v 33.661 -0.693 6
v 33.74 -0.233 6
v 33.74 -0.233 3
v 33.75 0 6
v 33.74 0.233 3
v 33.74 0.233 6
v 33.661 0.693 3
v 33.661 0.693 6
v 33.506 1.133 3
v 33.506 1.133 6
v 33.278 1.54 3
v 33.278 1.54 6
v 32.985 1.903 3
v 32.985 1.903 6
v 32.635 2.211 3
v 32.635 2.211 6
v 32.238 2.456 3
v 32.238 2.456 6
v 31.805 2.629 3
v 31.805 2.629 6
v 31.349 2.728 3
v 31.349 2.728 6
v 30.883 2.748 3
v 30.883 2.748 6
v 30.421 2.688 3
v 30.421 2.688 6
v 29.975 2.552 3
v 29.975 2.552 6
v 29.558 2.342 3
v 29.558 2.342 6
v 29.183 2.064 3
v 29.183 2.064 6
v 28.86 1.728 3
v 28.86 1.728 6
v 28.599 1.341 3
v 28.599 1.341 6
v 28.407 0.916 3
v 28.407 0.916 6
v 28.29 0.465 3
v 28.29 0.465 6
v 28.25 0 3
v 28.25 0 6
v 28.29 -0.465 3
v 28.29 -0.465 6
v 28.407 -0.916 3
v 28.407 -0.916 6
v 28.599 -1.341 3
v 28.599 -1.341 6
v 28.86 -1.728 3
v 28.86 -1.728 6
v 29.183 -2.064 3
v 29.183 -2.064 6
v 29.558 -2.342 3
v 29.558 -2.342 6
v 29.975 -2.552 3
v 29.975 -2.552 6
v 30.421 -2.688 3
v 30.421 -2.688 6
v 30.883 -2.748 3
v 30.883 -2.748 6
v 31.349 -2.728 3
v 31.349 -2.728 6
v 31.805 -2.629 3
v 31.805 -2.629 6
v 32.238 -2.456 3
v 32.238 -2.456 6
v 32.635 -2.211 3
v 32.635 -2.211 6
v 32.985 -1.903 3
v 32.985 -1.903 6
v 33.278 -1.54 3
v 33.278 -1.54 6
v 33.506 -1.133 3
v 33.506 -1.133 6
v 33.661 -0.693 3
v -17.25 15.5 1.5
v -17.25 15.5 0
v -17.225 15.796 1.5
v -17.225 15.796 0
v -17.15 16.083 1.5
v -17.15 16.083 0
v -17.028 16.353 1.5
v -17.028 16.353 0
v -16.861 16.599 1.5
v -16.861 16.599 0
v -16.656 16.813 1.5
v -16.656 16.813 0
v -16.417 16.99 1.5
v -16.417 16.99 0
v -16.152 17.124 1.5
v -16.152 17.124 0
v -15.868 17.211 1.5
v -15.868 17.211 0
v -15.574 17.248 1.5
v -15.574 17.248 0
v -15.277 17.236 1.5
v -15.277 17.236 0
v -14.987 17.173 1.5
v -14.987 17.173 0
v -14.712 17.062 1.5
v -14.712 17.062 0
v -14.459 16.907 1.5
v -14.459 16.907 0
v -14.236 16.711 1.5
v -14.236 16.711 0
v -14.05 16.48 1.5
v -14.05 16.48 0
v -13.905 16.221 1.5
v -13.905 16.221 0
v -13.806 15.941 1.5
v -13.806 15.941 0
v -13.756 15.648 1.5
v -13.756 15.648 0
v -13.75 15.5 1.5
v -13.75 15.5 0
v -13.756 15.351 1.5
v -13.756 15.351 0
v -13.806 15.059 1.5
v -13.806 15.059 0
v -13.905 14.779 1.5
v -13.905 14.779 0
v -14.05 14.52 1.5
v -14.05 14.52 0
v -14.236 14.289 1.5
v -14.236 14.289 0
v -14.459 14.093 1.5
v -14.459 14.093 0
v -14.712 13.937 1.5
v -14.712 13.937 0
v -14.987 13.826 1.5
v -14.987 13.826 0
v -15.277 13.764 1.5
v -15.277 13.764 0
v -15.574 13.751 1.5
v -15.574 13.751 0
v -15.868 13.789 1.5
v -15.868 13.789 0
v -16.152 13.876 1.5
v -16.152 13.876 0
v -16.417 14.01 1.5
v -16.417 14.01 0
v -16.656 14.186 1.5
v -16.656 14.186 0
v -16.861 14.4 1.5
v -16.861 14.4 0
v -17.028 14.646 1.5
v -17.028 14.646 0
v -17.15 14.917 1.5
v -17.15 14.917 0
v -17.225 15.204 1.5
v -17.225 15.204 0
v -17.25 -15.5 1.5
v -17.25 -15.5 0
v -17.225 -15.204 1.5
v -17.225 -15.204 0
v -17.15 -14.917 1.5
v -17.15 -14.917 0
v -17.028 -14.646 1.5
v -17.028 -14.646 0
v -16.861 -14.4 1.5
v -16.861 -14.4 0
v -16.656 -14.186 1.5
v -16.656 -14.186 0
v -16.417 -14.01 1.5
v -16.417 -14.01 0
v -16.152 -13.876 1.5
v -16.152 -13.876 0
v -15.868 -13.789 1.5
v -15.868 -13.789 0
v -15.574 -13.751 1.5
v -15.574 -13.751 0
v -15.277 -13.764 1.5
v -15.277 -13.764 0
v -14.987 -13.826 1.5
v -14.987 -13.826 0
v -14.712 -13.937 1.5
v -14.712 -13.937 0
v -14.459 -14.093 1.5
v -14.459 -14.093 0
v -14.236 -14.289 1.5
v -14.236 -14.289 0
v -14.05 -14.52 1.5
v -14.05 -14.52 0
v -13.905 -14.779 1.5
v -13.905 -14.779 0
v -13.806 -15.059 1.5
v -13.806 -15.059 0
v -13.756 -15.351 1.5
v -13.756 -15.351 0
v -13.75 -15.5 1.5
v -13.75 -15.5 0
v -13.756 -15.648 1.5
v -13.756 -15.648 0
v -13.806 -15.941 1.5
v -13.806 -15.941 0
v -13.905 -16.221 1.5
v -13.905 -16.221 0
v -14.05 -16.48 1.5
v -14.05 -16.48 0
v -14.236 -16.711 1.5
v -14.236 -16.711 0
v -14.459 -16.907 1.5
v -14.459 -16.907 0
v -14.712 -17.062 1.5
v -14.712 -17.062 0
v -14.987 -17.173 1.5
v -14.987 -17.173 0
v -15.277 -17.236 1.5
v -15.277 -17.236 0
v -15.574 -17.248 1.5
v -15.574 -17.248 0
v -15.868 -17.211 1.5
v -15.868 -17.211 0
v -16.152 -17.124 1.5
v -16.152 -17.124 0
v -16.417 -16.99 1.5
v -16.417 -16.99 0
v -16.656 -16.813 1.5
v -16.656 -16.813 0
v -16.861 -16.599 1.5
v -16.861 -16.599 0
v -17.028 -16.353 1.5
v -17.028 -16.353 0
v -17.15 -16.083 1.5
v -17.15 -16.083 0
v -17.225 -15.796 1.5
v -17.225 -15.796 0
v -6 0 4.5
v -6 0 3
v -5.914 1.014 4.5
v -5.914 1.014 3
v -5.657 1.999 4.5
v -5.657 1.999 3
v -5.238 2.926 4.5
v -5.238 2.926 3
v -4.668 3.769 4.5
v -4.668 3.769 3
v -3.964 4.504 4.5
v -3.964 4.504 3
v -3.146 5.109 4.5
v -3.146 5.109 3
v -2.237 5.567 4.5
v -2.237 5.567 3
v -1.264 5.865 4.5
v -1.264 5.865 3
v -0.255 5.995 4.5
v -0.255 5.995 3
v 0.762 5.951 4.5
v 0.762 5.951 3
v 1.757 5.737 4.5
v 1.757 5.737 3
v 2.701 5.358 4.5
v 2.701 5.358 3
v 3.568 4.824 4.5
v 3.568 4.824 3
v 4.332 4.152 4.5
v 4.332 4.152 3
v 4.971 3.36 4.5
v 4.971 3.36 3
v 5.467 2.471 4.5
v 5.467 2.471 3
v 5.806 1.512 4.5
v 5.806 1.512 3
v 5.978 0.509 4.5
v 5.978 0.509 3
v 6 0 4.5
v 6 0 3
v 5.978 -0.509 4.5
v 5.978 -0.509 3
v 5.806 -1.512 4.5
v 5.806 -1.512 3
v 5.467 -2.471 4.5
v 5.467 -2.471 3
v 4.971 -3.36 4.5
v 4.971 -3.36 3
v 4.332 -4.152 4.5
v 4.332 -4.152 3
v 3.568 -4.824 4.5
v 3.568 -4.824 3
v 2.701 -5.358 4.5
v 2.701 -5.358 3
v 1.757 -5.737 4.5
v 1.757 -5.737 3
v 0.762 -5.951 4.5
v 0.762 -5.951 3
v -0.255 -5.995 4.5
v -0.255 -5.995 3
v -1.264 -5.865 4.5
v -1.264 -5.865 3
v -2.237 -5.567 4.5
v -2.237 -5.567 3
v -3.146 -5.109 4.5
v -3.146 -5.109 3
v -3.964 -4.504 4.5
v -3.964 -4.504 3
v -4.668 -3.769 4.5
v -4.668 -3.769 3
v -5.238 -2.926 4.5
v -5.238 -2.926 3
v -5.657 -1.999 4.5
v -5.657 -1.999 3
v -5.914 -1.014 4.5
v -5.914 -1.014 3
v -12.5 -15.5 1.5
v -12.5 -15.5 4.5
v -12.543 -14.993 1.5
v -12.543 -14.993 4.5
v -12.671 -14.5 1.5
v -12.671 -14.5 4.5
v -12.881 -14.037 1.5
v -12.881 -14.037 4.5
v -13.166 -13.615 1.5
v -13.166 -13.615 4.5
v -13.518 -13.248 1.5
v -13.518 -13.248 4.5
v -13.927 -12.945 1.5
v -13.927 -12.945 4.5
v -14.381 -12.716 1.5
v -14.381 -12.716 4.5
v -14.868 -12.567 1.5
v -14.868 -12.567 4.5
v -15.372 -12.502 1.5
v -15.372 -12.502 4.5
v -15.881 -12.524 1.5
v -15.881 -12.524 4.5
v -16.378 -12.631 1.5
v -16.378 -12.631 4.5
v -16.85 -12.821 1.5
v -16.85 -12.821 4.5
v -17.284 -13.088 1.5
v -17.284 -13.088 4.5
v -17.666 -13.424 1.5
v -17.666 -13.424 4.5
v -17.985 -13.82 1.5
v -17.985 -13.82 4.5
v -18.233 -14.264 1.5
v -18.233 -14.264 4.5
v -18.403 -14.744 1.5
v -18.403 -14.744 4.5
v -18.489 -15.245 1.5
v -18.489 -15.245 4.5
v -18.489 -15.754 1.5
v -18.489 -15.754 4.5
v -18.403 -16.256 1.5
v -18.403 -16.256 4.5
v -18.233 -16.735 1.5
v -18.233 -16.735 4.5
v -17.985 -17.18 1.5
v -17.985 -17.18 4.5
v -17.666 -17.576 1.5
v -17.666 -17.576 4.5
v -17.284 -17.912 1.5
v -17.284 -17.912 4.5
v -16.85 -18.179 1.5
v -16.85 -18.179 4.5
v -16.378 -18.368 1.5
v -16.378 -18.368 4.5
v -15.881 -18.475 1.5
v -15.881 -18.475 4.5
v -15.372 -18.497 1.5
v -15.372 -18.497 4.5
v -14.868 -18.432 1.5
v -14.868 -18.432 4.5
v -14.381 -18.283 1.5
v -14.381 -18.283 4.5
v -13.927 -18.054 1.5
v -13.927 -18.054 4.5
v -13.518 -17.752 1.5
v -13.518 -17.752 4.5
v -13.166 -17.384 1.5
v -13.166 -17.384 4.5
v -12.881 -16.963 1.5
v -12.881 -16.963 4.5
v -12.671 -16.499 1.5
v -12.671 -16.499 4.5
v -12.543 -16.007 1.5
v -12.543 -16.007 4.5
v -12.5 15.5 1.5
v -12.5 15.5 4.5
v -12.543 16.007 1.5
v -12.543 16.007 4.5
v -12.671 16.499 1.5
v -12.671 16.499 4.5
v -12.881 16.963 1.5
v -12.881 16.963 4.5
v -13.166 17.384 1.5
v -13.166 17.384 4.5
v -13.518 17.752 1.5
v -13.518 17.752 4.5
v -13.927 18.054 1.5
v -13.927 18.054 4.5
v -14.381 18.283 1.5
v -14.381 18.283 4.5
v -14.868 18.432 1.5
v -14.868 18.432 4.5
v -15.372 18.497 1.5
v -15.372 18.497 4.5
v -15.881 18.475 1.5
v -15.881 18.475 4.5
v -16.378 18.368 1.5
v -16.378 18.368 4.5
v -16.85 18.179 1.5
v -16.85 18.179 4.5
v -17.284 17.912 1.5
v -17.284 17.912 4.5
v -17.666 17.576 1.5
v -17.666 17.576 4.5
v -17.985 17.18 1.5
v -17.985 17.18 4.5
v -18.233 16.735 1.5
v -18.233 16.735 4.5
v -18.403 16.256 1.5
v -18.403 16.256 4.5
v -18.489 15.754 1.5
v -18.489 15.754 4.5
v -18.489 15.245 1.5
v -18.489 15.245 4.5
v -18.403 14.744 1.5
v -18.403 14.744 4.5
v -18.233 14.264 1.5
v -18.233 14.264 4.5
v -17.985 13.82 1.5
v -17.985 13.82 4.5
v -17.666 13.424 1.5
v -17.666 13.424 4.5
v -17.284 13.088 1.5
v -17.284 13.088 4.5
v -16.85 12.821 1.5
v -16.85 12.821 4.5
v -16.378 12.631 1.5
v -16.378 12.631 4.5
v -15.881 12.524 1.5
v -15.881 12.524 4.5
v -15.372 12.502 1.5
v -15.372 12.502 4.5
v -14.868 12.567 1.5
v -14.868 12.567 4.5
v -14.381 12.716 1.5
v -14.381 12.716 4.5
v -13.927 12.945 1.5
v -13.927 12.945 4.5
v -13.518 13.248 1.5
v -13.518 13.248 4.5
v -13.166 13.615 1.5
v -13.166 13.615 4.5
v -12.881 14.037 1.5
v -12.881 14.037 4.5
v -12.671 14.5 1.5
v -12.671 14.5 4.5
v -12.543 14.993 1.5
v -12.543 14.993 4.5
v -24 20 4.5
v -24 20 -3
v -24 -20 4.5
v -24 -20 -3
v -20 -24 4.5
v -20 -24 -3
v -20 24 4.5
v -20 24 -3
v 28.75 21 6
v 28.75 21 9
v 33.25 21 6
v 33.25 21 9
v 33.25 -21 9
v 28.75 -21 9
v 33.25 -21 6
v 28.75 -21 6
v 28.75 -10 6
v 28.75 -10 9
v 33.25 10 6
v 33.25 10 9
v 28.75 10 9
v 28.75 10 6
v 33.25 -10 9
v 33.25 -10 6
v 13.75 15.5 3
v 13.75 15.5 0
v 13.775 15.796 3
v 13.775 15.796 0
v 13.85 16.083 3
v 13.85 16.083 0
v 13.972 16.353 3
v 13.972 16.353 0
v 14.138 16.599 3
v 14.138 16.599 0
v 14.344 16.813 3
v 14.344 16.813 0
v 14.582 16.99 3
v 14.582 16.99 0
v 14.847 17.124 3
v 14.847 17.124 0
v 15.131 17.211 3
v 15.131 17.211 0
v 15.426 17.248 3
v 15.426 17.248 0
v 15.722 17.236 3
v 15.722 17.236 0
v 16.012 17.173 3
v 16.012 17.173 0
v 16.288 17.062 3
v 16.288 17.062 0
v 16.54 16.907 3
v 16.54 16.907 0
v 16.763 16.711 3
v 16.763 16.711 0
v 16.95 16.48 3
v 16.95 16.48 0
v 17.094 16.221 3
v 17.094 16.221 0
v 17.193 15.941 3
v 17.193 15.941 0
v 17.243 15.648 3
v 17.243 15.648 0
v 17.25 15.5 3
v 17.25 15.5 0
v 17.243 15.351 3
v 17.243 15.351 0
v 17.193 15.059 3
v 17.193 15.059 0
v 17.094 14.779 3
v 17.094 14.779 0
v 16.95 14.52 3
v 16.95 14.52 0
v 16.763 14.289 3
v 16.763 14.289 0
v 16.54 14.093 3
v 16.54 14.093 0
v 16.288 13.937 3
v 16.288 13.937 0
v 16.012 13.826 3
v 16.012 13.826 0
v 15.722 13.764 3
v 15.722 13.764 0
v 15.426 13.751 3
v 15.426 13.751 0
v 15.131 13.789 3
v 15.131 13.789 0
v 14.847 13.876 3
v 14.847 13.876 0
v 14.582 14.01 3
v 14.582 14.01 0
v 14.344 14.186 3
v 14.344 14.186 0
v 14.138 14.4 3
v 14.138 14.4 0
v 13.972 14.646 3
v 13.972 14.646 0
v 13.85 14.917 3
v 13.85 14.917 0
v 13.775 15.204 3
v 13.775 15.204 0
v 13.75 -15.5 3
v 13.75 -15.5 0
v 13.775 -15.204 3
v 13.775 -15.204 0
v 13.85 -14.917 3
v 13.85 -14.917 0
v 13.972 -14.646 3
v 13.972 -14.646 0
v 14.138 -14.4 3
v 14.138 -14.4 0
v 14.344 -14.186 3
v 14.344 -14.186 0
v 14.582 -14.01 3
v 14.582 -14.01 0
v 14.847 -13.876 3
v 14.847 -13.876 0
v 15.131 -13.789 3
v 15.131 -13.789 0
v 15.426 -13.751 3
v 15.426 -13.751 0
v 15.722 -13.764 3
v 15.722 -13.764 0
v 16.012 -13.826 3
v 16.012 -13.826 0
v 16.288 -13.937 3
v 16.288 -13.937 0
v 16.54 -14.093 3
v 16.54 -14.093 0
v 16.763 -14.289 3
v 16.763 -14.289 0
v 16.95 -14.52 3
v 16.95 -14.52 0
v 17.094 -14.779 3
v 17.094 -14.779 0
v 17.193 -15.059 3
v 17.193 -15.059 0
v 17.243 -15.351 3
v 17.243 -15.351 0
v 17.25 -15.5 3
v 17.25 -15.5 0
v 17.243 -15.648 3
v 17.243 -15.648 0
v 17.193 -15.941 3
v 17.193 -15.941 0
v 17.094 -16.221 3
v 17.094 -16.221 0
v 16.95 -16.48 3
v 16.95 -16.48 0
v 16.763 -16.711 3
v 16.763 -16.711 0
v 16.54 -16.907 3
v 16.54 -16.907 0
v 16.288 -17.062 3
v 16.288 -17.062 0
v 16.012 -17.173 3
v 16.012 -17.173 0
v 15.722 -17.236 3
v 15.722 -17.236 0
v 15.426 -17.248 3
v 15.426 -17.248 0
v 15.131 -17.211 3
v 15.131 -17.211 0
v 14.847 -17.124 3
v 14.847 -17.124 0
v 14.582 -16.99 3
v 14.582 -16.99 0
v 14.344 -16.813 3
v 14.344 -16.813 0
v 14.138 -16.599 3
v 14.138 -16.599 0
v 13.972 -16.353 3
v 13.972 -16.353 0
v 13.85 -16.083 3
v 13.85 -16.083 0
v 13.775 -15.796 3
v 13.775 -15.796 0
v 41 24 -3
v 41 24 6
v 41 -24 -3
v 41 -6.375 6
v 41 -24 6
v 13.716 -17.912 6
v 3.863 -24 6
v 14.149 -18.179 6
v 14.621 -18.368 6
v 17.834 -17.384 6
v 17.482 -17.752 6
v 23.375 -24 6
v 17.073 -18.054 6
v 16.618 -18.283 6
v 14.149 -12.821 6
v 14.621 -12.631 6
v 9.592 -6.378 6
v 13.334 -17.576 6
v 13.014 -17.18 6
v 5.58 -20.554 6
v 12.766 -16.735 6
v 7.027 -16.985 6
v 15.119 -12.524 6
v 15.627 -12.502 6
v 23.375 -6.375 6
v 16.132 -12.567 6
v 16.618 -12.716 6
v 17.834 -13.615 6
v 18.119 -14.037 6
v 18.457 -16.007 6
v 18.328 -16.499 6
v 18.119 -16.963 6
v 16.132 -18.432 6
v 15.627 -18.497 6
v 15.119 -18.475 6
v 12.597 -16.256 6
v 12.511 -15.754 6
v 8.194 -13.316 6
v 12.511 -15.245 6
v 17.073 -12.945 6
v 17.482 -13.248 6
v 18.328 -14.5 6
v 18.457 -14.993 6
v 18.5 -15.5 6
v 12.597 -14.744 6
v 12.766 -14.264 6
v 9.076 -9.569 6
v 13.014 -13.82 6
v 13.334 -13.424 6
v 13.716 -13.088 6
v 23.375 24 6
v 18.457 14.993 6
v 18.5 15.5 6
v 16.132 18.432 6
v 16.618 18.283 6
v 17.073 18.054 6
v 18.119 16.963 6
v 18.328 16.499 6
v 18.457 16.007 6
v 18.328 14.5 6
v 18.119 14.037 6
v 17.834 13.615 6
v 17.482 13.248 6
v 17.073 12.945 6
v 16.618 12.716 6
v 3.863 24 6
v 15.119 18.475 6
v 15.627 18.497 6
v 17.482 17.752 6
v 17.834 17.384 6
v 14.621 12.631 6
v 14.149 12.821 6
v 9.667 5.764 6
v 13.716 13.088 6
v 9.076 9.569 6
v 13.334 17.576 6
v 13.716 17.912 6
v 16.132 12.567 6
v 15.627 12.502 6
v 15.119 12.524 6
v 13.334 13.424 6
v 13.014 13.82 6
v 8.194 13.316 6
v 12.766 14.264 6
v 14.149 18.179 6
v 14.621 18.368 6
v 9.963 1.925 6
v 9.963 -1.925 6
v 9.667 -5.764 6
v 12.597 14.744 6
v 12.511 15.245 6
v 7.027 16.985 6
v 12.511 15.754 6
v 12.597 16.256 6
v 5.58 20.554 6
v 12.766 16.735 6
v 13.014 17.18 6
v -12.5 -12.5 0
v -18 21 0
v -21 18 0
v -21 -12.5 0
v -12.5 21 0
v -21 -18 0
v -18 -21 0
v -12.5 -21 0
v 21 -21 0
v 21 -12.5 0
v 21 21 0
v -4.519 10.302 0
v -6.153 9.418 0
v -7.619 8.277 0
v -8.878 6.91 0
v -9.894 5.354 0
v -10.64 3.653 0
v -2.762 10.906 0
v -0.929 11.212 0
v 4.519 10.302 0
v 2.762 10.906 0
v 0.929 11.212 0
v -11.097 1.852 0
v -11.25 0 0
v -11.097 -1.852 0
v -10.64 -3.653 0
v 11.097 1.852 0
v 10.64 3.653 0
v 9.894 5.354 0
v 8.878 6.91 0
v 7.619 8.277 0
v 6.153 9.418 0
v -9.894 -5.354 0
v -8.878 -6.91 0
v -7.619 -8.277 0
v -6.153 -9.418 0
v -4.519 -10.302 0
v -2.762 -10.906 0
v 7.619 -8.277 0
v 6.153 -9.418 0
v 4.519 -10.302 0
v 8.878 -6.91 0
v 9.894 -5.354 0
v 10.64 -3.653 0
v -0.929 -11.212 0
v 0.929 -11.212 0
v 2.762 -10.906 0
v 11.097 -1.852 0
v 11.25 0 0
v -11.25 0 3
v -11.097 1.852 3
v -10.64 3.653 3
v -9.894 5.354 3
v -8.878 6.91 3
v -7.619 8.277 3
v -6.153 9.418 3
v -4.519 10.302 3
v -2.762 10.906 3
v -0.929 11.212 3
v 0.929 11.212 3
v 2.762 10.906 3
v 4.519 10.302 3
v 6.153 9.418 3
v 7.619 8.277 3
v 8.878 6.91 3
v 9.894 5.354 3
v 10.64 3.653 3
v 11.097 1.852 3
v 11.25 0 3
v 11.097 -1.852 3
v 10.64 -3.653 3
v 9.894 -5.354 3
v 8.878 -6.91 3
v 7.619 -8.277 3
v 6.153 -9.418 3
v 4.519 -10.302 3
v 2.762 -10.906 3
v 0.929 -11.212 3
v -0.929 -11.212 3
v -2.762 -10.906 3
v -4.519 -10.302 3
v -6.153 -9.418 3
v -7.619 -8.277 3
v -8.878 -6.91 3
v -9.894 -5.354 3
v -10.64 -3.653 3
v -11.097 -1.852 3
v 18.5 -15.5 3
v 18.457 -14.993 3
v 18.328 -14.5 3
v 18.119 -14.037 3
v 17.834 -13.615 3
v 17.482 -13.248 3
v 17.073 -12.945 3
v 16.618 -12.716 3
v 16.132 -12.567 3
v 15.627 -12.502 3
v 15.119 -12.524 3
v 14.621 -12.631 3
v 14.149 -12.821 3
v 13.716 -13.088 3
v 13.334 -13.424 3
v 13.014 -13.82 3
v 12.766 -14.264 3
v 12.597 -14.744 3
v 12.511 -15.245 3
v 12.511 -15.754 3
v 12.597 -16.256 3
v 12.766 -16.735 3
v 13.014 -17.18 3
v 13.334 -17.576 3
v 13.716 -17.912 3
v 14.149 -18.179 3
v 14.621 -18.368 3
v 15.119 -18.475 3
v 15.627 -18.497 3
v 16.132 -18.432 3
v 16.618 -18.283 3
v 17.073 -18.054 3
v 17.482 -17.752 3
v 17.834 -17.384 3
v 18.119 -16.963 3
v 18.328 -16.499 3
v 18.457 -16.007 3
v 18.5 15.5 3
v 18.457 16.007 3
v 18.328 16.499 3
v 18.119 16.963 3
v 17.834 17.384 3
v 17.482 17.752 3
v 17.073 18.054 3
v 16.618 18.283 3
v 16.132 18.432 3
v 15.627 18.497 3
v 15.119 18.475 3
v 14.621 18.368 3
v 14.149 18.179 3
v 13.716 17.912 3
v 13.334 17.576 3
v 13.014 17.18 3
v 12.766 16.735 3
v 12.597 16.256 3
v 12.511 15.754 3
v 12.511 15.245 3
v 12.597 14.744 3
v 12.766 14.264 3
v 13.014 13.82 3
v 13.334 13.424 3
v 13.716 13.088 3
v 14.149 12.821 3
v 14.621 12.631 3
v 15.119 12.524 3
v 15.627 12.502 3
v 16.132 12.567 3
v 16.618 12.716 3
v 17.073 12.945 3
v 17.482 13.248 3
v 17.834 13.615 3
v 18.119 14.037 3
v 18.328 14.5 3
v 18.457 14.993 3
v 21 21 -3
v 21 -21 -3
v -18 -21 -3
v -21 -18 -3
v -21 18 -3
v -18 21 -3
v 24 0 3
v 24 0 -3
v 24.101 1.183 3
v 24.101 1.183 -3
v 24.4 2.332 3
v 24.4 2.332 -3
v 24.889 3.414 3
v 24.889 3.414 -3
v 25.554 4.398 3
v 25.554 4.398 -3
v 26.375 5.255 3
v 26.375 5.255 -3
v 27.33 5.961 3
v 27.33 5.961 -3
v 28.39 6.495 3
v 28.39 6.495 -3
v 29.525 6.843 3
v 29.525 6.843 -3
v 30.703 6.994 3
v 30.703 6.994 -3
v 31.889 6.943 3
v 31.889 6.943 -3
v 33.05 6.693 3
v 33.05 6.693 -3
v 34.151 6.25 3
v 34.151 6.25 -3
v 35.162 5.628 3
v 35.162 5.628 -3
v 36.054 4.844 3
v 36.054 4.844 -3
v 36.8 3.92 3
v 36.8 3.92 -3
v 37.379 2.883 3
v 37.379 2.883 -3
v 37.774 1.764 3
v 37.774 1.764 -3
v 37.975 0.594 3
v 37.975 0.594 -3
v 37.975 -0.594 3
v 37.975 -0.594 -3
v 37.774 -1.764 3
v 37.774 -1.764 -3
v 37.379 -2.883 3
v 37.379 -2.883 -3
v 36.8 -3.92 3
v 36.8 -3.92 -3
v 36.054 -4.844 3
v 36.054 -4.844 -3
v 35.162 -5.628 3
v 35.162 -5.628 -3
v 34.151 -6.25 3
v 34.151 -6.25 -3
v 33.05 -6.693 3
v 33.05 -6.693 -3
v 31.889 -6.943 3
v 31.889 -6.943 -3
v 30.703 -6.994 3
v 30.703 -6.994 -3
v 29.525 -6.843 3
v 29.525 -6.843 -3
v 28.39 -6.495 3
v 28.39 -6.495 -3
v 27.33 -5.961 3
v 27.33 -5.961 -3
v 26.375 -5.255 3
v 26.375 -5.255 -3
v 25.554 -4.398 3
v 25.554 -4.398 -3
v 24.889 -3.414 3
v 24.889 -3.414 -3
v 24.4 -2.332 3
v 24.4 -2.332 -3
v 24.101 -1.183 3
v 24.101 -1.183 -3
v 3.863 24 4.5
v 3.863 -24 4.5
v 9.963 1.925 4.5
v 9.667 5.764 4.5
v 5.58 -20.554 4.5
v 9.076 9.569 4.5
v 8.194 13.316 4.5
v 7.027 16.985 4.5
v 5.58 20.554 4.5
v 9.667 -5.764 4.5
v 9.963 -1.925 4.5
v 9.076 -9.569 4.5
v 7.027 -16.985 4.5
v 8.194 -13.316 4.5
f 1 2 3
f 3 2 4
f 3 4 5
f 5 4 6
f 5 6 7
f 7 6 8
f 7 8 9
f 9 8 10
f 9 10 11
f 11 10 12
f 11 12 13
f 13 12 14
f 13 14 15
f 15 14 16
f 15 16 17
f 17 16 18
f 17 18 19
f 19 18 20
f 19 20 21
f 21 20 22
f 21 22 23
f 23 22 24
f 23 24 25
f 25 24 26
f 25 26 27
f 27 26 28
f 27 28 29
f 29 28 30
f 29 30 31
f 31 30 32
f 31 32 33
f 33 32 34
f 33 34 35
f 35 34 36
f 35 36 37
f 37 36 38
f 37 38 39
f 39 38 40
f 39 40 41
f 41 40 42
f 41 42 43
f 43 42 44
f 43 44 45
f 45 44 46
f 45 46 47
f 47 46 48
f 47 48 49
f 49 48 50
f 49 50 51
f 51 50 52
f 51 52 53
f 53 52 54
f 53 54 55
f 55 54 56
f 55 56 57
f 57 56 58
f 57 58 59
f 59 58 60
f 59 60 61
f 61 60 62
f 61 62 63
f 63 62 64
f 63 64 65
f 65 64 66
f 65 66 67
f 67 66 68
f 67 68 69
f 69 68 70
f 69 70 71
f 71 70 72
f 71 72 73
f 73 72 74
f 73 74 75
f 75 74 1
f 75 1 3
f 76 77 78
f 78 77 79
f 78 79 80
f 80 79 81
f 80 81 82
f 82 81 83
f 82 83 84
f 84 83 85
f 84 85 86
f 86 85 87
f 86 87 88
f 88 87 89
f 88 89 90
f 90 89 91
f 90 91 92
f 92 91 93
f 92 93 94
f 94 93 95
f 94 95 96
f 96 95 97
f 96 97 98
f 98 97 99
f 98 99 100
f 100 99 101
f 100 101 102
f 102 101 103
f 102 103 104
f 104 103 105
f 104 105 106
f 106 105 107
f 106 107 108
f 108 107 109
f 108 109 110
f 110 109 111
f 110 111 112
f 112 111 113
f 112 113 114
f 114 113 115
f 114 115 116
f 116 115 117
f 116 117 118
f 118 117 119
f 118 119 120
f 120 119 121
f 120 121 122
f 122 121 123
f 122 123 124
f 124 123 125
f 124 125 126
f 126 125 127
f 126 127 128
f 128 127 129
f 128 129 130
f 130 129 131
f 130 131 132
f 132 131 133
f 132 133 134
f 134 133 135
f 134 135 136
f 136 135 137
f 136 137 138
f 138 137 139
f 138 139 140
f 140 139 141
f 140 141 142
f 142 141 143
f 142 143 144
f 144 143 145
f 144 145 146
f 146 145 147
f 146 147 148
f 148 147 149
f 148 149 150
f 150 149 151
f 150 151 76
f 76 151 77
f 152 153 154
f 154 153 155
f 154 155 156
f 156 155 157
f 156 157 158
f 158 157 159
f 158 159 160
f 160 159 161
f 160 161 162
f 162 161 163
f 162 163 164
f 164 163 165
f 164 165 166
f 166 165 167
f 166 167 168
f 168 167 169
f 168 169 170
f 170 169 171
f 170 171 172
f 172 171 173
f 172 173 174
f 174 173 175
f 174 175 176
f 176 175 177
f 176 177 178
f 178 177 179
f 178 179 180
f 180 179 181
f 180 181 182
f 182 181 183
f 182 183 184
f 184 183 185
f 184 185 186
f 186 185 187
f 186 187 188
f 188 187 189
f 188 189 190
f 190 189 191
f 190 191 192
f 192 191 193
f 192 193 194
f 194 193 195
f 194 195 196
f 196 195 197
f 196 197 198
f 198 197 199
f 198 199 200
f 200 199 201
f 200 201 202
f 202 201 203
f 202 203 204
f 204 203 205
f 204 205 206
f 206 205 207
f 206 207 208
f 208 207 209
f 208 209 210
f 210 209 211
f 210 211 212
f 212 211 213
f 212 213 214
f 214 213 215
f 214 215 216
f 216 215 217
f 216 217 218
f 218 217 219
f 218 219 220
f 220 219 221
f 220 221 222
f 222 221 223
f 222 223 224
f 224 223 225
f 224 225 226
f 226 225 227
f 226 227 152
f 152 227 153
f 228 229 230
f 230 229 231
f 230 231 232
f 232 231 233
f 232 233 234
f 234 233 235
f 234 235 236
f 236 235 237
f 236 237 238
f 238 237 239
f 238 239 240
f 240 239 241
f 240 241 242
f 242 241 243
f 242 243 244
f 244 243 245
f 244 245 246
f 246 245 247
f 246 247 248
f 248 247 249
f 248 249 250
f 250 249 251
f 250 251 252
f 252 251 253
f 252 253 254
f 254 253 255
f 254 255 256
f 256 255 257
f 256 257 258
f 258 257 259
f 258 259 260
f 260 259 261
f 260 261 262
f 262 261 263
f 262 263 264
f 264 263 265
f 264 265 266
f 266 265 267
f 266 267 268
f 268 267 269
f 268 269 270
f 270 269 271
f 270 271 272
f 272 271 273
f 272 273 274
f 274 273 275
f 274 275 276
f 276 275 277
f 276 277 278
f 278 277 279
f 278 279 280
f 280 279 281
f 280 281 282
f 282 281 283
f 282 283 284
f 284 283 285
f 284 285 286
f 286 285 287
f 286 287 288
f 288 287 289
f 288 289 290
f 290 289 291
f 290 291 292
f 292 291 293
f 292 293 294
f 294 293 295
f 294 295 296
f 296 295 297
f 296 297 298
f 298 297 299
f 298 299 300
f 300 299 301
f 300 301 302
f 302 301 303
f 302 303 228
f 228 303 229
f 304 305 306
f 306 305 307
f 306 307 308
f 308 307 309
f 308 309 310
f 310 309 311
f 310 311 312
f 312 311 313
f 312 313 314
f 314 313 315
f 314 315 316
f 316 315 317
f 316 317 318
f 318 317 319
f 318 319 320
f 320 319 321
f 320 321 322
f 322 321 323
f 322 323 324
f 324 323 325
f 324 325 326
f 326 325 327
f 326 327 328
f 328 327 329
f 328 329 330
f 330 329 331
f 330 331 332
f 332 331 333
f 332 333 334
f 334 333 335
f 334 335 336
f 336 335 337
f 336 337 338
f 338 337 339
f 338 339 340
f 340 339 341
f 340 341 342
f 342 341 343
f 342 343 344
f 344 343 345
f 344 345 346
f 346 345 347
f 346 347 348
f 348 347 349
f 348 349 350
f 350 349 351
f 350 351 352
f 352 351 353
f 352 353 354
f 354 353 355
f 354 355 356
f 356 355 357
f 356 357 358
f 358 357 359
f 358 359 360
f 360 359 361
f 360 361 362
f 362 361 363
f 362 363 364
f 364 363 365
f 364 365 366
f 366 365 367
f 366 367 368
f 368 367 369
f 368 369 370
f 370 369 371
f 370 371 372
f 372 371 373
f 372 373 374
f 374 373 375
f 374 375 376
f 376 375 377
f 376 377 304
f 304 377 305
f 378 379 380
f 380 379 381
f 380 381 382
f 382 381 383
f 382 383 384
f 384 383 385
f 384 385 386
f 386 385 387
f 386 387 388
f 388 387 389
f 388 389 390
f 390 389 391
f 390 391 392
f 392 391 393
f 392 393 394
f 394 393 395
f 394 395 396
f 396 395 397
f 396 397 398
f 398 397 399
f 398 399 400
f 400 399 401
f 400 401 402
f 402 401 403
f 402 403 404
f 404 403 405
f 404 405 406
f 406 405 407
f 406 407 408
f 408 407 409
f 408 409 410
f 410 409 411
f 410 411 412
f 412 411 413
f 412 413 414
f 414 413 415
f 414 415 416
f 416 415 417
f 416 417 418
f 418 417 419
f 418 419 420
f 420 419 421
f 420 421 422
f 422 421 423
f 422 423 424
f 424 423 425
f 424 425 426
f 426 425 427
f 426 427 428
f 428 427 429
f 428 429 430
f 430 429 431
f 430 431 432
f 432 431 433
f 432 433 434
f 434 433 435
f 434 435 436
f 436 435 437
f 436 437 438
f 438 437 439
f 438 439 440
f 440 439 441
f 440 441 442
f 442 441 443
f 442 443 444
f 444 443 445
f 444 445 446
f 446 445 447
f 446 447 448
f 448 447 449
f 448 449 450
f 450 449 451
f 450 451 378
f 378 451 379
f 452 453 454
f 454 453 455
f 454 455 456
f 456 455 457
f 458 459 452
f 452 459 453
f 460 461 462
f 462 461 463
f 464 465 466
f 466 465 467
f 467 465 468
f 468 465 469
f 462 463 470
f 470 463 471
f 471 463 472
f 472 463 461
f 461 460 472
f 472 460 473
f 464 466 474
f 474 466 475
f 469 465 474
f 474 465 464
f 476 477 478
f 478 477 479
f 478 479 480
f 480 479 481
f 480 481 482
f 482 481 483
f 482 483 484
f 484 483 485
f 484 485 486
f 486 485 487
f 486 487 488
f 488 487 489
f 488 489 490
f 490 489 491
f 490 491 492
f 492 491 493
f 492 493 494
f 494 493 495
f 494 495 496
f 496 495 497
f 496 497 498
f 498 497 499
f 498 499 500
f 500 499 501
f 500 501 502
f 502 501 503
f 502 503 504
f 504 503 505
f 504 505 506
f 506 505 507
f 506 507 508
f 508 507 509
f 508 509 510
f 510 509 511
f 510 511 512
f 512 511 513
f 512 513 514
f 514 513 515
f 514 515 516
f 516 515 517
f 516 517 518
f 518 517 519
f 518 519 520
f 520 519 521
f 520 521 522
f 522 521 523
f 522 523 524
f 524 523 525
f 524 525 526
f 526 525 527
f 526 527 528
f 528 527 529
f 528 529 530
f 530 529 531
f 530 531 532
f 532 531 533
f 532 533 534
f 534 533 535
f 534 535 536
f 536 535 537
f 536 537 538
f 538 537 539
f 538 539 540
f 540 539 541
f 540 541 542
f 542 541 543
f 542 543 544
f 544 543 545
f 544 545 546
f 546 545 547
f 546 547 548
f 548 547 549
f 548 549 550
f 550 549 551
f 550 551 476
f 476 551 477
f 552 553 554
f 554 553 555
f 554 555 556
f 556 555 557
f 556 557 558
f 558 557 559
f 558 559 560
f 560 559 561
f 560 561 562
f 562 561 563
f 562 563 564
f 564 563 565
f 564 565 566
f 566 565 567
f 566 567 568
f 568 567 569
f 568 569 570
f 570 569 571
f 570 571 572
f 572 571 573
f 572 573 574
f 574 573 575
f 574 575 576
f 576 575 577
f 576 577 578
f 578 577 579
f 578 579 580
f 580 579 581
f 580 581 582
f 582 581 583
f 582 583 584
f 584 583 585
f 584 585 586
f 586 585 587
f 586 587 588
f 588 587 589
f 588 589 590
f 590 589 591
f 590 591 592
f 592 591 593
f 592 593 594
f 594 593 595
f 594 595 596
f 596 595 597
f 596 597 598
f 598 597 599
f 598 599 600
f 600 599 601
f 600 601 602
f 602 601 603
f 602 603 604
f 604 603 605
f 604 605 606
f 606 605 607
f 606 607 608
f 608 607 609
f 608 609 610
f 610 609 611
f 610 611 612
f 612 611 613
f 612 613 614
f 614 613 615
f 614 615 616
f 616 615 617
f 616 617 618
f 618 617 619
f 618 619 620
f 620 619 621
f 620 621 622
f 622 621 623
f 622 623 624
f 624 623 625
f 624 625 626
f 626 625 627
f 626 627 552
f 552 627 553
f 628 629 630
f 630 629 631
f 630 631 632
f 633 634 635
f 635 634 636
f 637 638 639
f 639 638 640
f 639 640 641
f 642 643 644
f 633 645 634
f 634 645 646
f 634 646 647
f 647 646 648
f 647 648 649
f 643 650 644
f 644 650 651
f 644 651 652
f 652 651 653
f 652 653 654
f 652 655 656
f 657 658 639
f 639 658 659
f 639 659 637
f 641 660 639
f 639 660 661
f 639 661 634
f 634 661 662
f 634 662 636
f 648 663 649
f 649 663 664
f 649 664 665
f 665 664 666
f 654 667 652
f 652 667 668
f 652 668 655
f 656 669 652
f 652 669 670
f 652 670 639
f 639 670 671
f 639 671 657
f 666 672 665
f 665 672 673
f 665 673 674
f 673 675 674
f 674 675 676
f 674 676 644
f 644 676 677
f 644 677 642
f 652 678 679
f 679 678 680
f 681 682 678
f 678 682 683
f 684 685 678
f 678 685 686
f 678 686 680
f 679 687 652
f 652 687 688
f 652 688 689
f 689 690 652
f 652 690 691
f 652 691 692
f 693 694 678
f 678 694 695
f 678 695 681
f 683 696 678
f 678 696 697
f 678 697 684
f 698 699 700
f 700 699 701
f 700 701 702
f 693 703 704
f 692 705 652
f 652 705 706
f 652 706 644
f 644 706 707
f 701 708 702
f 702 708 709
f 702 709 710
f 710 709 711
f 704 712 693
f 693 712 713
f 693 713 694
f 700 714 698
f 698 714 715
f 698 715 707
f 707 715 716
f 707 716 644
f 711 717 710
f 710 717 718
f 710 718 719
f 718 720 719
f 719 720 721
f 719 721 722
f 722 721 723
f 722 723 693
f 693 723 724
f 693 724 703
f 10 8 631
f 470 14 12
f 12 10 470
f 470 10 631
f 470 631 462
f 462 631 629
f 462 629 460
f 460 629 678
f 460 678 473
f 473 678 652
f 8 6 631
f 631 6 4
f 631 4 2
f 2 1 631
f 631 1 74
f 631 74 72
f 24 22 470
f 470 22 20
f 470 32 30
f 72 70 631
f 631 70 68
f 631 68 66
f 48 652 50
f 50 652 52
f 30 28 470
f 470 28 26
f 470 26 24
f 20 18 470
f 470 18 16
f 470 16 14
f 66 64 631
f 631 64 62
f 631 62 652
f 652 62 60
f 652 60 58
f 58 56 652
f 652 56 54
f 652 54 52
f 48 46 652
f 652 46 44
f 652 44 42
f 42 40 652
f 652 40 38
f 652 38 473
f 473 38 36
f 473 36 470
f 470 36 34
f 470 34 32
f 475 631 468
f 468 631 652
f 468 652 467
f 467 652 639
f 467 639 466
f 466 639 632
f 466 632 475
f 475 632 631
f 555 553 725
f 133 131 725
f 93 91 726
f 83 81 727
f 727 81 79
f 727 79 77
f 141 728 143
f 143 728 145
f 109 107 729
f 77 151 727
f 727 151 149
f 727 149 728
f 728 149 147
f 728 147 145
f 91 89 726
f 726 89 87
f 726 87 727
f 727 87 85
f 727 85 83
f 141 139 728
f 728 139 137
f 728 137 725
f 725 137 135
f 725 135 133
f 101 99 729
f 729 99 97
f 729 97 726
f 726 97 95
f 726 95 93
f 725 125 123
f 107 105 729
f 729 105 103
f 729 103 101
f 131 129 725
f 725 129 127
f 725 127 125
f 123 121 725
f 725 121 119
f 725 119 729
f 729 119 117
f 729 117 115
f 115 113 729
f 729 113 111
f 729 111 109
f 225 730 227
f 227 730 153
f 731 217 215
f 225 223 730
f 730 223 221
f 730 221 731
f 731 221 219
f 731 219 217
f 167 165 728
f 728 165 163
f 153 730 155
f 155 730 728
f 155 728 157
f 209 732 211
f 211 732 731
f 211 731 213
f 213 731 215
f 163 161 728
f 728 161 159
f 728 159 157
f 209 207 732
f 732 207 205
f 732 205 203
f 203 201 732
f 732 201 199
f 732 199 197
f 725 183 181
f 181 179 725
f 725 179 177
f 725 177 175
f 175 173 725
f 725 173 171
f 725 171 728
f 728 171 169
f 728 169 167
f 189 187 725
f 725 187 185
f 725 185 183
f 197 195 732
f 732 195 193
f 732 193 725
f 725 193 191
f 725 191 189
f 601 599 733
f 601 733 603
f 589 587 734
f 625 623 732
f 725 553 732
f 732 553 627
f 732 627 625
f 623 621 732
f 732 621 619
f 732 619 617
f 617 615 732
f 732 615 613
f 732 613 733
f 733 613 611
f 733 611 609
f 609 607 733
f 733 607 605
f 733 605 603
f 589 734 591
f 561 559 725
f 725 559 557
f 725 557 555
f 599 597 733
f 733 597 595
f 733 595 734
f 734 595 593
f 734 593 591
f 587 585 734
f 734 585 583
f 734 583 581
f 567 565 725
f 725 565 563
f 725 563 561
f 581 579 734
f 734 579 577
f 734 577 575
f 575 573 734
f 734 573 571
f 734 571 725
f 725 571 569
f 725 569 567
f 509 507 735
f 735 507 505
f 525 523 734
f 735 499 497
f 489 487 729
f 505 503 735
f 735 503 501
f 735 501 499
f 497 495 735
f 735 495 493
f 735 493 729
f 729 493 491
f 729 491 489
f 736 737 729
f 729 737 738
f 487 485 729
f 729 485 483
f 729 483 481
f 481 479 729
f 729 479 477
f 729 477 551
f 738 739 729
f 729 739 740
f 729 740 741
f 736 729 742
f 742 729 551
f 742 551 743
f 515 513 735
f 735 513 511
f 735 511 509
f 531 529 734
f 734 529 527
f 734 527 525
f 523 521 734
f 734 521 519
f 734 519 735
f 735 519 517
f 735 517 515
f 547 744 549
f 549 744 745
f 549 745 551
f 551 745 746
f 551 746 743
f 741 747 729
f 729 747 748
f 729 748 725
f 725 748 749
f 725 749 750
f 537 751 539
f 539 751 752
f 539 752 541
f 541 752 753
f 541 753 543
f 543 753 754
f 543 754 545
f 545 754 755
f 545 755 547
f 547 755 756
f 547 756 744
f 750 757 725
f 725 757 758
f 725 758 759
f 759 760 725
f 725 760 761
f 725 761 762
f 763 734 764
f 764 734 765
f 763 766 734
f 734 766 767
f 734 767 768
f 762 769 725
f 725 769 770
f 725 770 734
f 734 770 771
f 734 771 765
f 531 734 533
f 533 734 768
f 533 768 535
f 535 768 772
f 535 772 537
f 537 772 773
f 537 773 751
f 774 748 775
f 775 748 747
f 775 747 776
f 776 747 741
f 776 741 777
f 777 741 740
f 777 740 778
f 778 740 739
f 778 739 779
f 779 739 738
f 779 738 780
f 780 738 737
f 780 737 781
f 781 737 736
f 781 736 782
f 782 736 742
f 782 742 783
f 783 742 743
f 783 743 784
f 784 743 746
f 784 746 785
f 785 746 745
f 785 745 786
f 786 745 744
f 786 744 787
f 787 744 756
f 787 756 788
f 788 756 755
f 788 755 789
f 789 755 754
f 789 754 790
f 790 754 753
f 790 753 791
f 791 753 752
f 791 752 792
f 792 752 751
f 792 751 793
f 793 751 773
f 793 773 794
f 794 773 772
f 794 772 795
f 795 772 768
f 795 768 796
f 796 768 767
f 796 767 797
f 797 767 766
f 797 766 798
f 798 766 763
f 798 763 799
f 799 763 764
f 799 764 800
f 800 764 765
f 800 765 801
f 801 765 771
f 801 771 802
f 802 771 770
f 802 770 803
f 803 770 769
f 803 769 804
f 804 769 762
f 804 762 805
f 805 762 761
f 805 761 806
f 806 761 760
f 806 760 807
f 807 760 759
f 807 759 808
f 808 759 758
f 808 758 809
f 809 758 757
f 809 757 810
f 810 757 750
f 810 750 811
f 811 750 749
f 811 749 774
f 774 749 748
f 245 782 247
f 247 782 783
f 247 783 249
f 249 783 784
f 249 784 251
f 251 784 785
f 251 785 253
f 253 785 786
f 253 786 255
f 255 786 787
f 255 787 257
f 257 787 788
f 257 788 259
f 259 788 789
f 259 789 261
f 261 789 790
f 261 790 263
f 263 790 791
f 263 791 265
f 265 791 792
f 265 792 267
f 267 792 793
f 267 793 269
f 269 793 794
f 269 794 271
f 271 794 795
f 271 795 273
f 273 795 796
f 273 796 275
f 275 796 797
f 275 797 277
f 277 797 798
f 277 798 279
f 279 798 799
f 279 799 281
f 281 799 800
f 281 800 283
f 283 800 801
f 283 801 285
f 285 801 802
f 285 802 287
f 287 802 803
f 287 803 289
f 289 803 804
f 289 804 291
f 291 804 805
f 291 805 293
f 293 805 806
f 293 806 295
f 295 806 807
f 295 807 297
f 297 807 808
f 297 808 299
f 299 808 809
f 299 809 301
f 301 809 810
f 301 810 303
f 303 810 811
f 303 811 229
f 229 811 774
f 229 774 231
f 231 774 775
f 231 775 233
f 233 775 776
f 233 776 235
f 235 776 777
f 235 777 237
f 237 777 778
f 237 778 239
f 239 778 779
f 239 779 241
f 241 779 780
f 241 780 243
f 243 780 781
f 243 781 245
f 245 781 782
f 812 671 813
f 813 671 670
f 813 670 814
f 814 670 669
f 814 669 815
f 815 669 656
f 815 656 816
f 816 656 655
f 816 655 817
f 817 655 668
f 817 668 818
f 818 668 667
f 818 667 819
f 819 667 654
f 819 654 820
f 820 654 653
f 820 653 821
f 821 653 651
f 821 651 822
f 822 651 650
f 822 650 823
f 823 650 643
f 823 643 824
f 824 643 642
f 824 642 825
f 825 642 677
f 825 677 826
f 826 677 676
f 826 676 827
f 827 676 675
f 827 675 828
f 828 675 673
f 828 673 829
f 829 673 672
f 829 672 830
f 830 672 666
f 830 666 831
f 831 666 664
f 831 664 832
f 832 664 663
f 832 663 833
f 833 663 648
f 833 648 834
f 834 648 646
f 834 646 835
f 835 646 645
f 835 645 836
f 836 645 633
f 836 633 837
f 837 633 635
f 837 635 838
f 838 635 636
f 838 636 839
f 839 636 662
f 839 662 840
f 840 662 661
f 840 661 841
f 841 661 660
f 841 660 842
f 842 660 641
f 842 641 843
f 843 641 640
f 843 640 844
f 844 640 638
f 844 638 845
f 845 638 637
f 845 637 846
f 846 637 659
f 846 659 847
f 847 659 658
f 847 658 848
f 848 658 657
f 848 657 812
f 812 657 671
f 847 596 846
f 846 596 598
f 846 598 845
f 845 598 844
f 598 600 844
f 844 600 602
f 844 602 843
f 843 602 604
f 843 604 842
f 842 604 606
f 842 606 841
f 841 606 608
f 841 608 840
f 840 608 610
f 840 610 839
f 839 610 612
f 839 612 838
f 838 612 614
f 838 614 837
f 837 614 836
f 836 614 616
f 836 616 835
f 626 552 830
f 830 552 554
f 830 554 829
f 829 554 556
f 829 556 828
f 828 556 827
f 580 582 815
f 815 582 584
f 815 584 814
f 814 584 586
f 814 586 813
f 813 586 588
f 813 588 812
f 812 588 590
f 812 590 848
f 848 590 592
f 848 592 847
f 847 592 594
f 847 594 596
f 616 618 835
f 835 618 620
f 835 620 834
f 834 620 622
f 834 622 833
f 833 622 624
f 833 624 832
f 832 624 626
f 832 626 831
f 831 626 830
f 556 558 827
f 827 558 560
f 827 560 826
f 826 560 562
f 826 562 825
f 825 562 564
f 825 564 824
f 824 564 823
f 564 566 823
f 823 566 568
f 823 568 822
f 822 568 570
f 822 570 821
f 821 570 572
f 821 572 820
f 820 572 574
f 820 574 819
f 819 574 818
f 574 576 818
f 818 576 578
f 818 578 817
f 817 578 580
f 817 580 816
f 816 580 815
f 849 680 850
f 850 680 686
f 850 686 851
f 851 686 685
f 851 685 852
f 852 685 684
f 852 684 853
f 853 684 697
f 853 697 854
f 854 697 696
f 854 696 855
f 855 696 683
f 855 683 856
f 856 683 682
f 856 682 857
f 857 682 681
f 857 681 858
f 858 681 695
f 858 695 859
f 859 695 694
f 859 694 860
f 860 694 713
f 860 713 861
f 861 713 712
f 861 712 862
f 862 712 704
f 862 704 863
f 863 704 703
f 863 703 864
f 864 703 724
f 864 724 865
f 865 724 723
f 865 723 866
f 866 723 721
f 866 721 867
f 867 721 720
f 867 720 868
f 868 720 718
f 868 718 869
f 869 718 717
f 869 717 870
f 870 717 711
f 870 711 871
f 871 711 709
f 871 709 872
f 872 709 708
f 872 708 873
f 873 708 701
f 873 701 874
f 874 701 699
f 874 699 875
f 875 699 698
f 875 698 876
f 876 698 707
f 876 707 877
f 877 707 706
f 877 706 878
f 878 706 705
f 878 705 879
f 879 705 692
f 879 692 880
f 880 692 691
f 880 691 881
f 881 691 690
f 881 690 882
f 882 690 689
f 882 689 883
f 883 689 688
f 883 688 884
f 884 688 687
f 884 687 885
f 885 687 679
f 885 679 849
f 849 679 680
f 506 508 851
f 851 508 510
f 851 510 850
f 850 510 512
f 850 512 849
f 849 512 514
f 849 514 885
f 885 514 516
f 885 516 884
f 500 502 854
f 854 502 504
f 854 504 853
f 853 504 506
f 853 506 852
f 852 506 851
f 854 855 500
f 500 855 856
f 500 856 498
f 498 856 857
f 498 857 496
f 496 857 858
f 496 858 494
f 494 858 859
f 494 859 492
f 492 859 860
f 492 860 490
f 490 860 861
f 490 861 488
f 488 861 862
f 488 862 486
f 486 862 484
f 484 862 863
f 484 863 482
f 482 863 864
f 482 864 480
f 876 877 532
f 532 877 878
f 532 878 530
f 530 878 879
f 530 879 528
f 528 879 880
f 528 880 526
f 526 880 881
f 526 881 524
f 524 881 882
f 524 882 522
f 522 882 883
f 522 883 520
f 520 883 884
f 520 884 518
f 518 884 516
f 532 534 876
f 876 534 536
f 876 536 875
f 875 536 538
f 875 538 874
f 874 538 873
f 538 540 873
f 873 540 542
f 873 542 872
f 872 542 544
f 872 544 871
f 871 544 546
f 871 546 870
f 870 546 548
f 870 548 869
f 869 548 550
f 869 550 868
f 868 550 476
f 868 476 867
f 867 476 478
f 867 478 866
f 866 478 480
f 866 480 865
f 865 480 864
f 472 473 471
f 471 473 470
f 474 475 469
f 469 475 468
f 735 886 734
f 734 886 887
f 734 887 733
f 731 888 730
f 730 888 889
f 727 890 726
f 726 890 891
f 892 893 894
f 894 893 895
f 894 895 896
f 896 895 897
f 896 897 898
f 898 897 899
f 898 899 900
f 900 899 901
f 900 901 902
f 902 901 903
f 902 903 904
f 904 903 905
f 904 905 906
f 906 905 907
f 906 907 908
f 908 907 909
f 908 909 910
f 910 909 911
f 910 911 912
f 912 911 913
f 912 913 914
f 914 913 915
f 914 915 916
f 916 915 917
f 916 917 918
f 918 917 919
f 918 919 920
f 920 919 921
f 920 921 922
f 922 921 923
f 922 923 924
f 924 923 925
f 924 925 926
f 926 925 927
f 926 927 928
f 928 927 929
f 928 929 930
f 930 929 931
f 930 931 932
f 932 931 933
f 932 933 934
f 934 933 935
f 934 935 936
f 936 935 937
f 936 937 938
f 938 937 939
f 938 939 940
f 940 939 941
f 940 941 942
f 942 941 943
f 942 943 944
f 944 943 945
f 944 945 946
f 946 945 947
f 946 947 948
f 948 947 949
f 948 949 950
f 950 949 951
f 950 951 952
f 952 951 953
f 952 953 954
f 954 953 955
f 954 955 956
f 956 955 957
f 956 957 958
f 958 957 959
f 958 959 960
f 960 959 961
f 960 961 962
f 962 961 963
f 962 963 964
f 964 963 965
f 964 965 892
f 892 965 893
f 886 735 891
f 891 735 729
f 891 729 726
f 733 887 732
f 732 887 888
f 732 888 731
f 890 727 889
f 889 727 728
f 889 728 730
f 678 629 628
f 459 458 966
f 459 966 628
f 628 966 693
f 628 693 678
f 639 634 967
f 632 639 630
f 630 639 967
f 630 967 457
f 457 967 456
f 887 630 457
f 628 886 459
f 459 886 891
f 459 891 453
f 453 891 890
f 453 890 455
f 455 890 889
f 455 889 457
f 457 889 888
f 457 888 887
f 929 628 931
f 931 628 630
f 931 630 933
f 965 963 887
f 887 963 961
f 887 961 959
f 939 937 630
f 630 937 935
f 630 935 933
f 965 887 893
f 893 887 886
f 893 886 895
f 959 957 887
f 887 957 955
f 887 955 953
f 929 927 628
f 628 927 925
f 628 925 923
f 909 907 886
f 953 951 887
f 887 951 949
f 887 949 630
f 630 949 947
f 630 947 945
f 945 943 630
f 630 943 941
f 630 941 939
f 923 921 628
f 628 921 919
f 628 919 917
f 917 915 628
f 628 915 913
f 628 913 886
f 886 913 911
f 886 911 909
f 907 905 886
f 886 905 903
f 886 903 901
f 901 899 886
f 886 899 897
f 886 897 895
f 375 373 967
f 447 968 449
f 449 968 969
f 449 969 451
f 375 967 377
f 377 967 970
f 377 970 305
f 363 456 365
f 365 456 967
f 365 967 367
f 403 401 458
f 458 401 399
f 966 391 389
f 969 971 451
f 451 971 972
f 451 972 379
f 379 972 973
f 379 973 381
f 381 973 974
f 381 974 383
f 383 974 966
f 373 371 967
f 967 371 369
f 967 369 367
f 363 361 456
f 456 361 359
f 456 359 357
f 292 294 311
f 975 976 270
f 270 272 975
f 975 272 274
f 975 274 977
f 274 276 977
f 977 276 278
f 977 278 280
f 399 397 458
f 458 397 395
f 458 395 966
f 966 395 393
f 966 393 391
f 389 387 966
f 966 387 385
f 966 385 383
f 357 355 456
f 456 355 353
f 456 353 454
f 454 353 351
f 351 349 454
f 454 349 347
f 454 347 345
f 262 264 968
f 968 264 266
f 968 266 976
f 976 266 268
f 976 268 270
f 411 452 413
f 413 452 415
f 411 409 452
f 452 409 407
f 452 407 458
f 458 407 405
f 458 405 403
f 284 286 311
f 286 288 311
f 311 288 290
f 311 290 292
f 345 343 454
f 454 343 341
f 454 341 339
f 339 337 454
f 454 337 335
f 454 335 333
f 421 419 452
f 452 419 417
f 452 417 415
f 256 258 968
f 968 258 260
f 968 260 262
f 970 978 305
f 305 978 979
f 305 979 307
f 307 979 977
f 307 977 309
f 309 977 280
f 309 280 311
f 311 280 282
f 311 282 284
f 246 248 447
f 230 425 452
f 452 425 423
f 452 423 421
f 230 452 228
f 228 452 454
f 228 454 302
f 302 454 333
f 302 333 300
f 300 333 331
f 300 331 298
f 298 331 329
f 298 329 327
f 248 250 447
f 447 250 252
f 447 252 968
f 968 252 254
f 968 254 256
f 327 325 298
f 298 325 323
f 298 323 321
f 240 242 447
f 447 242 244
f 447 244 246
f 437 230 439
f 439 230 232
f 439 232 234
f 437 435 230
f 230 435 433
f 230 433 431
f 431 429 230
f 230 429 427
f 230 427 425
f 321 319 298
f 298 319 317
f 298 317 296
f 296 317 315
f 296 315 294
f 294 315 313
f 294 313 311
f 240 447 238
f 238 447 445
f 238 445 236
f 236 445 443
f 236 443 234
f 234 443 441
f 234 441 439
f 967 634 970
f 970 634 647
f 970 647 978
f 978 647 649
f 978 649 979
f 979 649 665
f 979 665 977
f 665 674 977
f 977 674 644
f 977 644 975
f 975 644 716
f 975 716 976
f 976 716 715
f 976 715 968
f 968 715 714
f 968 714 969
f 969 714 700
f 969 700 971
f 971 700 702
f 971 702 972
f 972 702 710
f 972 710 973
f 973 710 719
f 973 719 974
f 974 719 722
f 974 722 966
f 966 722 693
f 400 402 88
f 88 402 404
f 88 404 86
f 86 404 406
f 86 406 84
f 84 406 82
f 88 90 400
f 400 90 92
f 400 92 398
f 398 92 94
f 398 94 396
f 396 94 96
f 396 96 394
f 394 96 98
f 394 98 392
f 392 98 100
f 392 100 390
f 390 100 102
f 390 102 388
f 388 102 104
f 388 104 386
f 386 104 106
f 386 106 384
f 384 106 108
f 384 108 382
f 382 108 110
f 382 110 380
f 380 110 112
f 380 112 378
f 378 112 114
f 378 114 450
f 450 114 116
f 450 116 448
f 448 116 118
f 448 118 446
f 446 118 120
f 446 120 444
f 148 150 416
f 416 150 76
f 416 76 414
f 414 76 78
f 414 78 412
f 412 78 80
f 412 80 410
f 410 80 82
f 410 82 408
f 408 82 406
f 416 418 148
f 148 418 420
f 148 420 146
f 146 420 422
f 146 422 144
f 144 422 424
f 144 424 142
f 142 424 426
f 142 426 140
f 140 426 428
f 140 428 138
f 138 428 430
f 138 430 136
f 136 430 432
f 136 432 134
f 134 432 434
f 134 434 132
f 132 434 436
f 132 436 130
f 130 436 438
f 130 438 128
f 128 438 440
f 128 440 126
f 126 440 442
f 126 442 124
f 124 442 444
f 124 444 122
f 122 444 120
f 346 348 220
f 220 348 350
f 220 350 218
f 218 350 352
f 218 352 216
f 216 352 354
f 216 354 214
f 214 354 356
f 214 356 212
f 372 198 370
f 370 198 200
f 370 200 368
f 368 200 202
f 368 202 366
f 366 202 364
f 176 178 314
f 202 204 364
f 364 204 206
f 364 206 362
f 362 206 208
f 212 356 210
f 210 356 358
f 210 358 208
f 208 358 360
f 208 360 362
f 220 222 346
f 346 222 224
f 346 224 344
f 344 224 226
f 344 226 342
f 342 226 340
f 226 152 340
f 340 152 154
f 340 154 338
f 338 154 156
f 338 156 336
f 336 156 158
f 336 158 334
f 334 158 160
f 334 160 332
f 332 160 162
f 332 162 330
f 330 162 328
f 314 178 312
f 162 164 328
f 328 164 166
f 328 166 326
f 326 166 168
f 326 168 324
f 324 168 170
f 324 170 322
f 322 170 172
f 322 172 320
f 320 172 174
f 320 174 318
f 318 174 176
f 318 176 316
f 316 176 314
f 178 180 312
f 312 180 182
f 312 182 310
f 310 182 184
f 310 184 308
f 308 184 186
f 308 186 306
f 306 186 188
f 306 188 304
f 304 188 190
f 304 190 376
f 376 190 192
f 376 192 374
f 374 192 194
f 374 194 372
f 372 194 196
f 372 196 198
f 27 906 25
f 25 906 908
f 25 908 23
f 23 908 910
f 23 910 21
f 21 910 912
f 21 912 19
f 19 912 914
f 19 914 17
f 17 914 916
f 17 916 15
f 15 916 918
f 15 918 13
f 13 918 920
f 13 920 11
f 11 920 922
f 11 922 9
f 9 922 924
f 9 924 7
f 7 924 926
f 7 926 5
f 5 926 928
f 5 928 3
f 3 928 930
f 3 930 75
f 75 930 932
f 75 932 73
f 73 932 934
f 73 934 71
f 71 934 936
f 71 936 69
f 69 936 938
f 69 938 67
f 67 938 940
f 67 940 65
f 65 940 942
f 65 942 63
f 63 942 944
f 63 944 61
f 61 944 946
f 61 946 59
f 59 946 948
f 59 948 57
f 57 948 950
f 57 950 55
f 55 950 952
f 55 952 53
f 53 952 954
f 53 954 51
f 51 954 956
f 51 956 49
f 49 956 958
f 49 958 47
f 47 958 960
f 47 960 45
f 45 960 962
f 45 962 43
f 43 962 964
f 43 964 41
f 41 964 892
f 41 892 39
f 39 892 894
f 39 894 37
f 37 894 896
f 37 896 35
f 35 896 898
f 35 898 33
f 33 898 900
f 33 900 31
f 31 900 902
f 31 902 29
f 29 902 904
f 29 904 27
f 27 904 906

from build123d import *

# Parameters (mm, degrees)
SKETCH1_W                = 20
SKETCH1_H                = 42
SKETCH1_W_2              = 42
BOSS_EXTRUDE1_DEPTH      = 6
SKETCH2_R                = 11.25
CUT_EXTRUDE1_DEPTH       = 3
CUT_EXTRUDE2_DEPTH       = 47.454278597
CUT_EXTRUDE2_DEPTH_BACK  = 47.454278597
SKETCH3_R                = 1.75
SKETCH3_R_2              = 6
CUT_EXTRUDE3_START       = -3
SKETCH4_R                = 3
SKETCH4_R_2              = 1.75
CUT_EXTRUDE3_DEPTH       = 3
SKETCH5_W                = 4.5
SKETCH5_H                = 42
BOSS_EXTRUDE2_DEPTH      = 3
CHAMFER1_SIZE            = 3
CUT_EXTRUDE4_DEPTH       = 47.936126811
CUT_EXTRUDE4_DEPTH_BACK  = 47.936126811
SKETCH6_R                = 2.75
SKETCH7_W                = 9.456435582
SKETCH7_H                = 20
SKETCH7_R                = 2.75
CUT_EXTRUDE5_DEPTH       = 47.454278597
BOSS_EXTRUDE4_DEPTH      = 3
BOSS_EXTRUDE4_DEPTH_BACK = 6
SKETCH8_W                = 20
SKETCH8_H                = 42
SKETCH8_R                = 7
CHAMFER2_SIZE            = 4
SKETCH9_R                = 50
CUT_EXTRUDE7_DEPTH       = 1.5
CUT_EXTRUDE8_START       = -1.5
SKETCH10_R               = 3
CUT_EXTRUDE8_DEPTH       = 1.5
CUT_EXTRUDE9_START       = -3
SKETCH11_R               = 7
CUT_EXTRUDE9_DEPTH       = 3


with BuildPart() as part:
    # Sketch1 → Boss-Extrude1 (new body)
    with BuildSketch(Plane.XY):
        with Locations((31, 0)):
            Rectangle(SKETCH1_W, SKETCH1_H)
        Rectangle(SKETCH1_W_2, SKETCH1_H)
    extrude(amount=BOSS_EXTRUDE1_DEPTH)

    # Sketch2 → Cut-Extrude1 (cut)
    with BuildSketch(Plane.XY):
        Circle(SKETCH2_R)
    extrude(amount=CUT_EXTRUDE1_DEPTH, mode=Mode.SUBTRACT)

    # Sketch3 → Cut-Extrude2 (cut, two sides: drawn at the far end of the back side and taken through both)
    with BuildSketch(Plane.XY.offset(-CUT_EXTRUDE2_DEPTH_BACK)):
        with Locations((-15.499780644, 15.499780644)):
            Circle(SKETCH3_R)
        Circle(SKETCH3_R_2)
        with Locations((15.499780644, 15.499780644)):
            Circle(SKETCH3_R)
        with Locations((15.499780644, -15.499780644)):
            Circle(SKETCH3_R)
        with Locations((-15.499780644, -15.499780644)):
            Circle(SKETCH3_R)
    extrude(amount=CUT_EXTRUDE2_DEPTH + CUT_EXTRUDE2_DEPTH_BACK, mode=Mode.SUBTRACT)

    # Sketch4 → Cut-Extrude3 (cut)
    # profile 1 of 4: a face of its own
    with BuildSketch(Plane.XY.offset(6).offset(CUT_EXTRUDE3_START)):
        with Locations((-15.499780644, -15.499780644)):
            Circle(SKETCH4_R)
        with Locations((-15.499780644, -15.499780644)):
            Circle(SKETCH4_R_2, mode=Mode.SUBTRACT)
    # profile 2 of 4: a face of its own
    with BuildSketch(Plane.XY.offset(6).offset(CUT_EXTRUDE3_START)):
        with Locations((-15.499780644, 15.499780644)):
            Circle(SKETCH4_R)
        with Locations((-15.499780644, 15.499780644)):
            Circle(SKETCH4_R_2, mode=Mode.SUBTRACT)
    # profile 3 of 4: a face of its own
    with BuildSketch(Plane.XY.offset(6).offset(CUT_EXTRUDE3_START)):
        with Locations((15.499780644, 15.499780644)):
            Circle(SKETCH4_R)
        with Locations((15.499780644, 15.499780644)):
            Circle(SKETCH4_R_2, mode=Mode.SUBTRACT)
    # profile 4 of 4: a face of its own
    with BuildSketch(Plane.XY.offset(6).offset(CUT_EXTRUDE3_START)):
        with Locations((15.499780644, -15.499780644)):
            Circle(SKETCH4_R)
        with Locations((15.499780644, -15.499780644)):
            Circle(SKETCH4_R_2, mode=Mode.SUBTRACT)
    extrude(amount=CUT_EXTRUDE3_DEPTH, mode=Mode.SUBTRACT)

    # Sketch5 → Boss-Extrude2 (add)
    with BuildSketch(Plane.XY.offset(6)):
        with Locations((31, 0)):
            Rectangle(SKETCH5_W, SKETCH5_H)
    extrude(amount=BOSS_EXTRUDE2_DEPTH)

    # Chamfer1
    chamfer1_edges = [part.edges().sort_by_distance(p)[0] for p in [
        (-21, -21, 3),
        (-21, 21, 3),
    ]]
    chamfer(chamfer1_edges, length=CHAMFER1_SIZE)

    # Sketch6 → Cut-Extrude4 (cut, two sides: drawn at the far end of the back side and taken through both)
    with BuildSketch(Plane(origin=(0, 0, 0), x_dir=(-1, 0, 0), z_dir=(0, 0, -1)).offset(-CUT_EXTRUDE4_DEPTH_BACK)):
        with Locations(Location((-31, 0, 0), (0, 0, 324.903198772))):
            Circle(SKETCH6_R)
    extrude(amount=CUT_EXTRUDE4_DEPTH + CUT_EXTRUDE4_DEPTH_BACK, mode=Mode.SUBTRACT)

    # Sketch7 → Cut-Extrude5 (cut, through all)
    with BuildSketch(Plane.XY.offset(6)):
        with Locations((31, 0)):
            Rectangle(SKETCH7_W, SKETCH7_H)
        with Locations((31, 0)):
            Circle(SKETCH7_R, mode=Mode.SUBTRACT)
    extrude(amount=CUT_EXTRUDE5_DEPTH, mode=Mode.SUBTRACT)

    # Sketch8 → Boss-Extrude4 (add, two sides: drawn at the far end of the back side and taken through both)
    # profile 1 of 2: a face of its own
    with BuildSketch(Plane(origin=(0, 0, 0), x_dir=(-1, 0, 0), z_dir=(0, 0, -1)).offset(-BOSS_EXTRUDE4_DEPTH_BACK)):
        Polygon((18, -21), (-21, -21), (-41, -21), (-41, -24), (24, -24), (24, 24), (-41, 24), (-41, 21), (-21, 21), (18, 21), (21, 18), (21, -18), align=None)
    # profile 2 of 2: a face of its own
    with BuildSketch(Plane(origin=(0, 0, 0), x_dir=(-1, 0, 0), z_dir=(0, 0, -1)).offset(-BOSS_EXTRUDE4_DEPTH_BACK)):
        with Locations((-31, 0)):
            Rectangle(SKETCH8_W, SKETCH8_H)
        with Locations((-31, 0)):
            Circle(SKETCH8_R, mode=Mode.SUBTRACT)
    extrude(amount=BOSS_EXTRUDE4_DEPTH + BOSS_EXTRUDE4_DEPTH_BACK)

    # Chamfer2
    chamfer2_edges = [part.edges().sort_by_distance(p)[0] for p in [
        (-24, 24, 1.5),
        (-24, -24, 1.5),
    ]]
    chamfer(chamfer2_edges, length=CHAMFER2_SIZE)

    # Sketch9 → Cut-Extrude7 (cut)
    with BuildSketch(Plane.XY.offset(6)):
        with Locations((-40, 0)):
            Circle(SKETCH9_R)
    extrude(amount=-CUT_EXTRUDE7_DEPTH, mode=Mode.SUBTRACT)

    # Sketch10 → Cut-Extrude8 (cut)
    with BuildSketch(Plane.XY.offset(3).offset(CUT_EXTRUDE8_START)):
        with Locations((-15.499780644, 15.499780644)):
            Circle(SKETCH10_R)
        with Locations((-15.499780644, -15.499780644)):
            Circle(SKETCH10_R)
    extrude(amount=CUT_EXTRUDE8_DEPTH, mode=Mode.SUBTRACT)

    # Sketch11 → Cut-Extrude9 (cut)
    with BuildSketch(Plane(origin=(0, 0, 0), x_dir=(-1, 0, 0), z_dir=(0, 0, -1)).offset(CUT_EXTRUDE9_START)):
        with Locations((-31, 0)):
            Circle(SKETCH11_R)
    extrude(amount=CUT_EXTRUDE9_DEPTH, mode=Mode.SUBTRACT)


solid = part.part
